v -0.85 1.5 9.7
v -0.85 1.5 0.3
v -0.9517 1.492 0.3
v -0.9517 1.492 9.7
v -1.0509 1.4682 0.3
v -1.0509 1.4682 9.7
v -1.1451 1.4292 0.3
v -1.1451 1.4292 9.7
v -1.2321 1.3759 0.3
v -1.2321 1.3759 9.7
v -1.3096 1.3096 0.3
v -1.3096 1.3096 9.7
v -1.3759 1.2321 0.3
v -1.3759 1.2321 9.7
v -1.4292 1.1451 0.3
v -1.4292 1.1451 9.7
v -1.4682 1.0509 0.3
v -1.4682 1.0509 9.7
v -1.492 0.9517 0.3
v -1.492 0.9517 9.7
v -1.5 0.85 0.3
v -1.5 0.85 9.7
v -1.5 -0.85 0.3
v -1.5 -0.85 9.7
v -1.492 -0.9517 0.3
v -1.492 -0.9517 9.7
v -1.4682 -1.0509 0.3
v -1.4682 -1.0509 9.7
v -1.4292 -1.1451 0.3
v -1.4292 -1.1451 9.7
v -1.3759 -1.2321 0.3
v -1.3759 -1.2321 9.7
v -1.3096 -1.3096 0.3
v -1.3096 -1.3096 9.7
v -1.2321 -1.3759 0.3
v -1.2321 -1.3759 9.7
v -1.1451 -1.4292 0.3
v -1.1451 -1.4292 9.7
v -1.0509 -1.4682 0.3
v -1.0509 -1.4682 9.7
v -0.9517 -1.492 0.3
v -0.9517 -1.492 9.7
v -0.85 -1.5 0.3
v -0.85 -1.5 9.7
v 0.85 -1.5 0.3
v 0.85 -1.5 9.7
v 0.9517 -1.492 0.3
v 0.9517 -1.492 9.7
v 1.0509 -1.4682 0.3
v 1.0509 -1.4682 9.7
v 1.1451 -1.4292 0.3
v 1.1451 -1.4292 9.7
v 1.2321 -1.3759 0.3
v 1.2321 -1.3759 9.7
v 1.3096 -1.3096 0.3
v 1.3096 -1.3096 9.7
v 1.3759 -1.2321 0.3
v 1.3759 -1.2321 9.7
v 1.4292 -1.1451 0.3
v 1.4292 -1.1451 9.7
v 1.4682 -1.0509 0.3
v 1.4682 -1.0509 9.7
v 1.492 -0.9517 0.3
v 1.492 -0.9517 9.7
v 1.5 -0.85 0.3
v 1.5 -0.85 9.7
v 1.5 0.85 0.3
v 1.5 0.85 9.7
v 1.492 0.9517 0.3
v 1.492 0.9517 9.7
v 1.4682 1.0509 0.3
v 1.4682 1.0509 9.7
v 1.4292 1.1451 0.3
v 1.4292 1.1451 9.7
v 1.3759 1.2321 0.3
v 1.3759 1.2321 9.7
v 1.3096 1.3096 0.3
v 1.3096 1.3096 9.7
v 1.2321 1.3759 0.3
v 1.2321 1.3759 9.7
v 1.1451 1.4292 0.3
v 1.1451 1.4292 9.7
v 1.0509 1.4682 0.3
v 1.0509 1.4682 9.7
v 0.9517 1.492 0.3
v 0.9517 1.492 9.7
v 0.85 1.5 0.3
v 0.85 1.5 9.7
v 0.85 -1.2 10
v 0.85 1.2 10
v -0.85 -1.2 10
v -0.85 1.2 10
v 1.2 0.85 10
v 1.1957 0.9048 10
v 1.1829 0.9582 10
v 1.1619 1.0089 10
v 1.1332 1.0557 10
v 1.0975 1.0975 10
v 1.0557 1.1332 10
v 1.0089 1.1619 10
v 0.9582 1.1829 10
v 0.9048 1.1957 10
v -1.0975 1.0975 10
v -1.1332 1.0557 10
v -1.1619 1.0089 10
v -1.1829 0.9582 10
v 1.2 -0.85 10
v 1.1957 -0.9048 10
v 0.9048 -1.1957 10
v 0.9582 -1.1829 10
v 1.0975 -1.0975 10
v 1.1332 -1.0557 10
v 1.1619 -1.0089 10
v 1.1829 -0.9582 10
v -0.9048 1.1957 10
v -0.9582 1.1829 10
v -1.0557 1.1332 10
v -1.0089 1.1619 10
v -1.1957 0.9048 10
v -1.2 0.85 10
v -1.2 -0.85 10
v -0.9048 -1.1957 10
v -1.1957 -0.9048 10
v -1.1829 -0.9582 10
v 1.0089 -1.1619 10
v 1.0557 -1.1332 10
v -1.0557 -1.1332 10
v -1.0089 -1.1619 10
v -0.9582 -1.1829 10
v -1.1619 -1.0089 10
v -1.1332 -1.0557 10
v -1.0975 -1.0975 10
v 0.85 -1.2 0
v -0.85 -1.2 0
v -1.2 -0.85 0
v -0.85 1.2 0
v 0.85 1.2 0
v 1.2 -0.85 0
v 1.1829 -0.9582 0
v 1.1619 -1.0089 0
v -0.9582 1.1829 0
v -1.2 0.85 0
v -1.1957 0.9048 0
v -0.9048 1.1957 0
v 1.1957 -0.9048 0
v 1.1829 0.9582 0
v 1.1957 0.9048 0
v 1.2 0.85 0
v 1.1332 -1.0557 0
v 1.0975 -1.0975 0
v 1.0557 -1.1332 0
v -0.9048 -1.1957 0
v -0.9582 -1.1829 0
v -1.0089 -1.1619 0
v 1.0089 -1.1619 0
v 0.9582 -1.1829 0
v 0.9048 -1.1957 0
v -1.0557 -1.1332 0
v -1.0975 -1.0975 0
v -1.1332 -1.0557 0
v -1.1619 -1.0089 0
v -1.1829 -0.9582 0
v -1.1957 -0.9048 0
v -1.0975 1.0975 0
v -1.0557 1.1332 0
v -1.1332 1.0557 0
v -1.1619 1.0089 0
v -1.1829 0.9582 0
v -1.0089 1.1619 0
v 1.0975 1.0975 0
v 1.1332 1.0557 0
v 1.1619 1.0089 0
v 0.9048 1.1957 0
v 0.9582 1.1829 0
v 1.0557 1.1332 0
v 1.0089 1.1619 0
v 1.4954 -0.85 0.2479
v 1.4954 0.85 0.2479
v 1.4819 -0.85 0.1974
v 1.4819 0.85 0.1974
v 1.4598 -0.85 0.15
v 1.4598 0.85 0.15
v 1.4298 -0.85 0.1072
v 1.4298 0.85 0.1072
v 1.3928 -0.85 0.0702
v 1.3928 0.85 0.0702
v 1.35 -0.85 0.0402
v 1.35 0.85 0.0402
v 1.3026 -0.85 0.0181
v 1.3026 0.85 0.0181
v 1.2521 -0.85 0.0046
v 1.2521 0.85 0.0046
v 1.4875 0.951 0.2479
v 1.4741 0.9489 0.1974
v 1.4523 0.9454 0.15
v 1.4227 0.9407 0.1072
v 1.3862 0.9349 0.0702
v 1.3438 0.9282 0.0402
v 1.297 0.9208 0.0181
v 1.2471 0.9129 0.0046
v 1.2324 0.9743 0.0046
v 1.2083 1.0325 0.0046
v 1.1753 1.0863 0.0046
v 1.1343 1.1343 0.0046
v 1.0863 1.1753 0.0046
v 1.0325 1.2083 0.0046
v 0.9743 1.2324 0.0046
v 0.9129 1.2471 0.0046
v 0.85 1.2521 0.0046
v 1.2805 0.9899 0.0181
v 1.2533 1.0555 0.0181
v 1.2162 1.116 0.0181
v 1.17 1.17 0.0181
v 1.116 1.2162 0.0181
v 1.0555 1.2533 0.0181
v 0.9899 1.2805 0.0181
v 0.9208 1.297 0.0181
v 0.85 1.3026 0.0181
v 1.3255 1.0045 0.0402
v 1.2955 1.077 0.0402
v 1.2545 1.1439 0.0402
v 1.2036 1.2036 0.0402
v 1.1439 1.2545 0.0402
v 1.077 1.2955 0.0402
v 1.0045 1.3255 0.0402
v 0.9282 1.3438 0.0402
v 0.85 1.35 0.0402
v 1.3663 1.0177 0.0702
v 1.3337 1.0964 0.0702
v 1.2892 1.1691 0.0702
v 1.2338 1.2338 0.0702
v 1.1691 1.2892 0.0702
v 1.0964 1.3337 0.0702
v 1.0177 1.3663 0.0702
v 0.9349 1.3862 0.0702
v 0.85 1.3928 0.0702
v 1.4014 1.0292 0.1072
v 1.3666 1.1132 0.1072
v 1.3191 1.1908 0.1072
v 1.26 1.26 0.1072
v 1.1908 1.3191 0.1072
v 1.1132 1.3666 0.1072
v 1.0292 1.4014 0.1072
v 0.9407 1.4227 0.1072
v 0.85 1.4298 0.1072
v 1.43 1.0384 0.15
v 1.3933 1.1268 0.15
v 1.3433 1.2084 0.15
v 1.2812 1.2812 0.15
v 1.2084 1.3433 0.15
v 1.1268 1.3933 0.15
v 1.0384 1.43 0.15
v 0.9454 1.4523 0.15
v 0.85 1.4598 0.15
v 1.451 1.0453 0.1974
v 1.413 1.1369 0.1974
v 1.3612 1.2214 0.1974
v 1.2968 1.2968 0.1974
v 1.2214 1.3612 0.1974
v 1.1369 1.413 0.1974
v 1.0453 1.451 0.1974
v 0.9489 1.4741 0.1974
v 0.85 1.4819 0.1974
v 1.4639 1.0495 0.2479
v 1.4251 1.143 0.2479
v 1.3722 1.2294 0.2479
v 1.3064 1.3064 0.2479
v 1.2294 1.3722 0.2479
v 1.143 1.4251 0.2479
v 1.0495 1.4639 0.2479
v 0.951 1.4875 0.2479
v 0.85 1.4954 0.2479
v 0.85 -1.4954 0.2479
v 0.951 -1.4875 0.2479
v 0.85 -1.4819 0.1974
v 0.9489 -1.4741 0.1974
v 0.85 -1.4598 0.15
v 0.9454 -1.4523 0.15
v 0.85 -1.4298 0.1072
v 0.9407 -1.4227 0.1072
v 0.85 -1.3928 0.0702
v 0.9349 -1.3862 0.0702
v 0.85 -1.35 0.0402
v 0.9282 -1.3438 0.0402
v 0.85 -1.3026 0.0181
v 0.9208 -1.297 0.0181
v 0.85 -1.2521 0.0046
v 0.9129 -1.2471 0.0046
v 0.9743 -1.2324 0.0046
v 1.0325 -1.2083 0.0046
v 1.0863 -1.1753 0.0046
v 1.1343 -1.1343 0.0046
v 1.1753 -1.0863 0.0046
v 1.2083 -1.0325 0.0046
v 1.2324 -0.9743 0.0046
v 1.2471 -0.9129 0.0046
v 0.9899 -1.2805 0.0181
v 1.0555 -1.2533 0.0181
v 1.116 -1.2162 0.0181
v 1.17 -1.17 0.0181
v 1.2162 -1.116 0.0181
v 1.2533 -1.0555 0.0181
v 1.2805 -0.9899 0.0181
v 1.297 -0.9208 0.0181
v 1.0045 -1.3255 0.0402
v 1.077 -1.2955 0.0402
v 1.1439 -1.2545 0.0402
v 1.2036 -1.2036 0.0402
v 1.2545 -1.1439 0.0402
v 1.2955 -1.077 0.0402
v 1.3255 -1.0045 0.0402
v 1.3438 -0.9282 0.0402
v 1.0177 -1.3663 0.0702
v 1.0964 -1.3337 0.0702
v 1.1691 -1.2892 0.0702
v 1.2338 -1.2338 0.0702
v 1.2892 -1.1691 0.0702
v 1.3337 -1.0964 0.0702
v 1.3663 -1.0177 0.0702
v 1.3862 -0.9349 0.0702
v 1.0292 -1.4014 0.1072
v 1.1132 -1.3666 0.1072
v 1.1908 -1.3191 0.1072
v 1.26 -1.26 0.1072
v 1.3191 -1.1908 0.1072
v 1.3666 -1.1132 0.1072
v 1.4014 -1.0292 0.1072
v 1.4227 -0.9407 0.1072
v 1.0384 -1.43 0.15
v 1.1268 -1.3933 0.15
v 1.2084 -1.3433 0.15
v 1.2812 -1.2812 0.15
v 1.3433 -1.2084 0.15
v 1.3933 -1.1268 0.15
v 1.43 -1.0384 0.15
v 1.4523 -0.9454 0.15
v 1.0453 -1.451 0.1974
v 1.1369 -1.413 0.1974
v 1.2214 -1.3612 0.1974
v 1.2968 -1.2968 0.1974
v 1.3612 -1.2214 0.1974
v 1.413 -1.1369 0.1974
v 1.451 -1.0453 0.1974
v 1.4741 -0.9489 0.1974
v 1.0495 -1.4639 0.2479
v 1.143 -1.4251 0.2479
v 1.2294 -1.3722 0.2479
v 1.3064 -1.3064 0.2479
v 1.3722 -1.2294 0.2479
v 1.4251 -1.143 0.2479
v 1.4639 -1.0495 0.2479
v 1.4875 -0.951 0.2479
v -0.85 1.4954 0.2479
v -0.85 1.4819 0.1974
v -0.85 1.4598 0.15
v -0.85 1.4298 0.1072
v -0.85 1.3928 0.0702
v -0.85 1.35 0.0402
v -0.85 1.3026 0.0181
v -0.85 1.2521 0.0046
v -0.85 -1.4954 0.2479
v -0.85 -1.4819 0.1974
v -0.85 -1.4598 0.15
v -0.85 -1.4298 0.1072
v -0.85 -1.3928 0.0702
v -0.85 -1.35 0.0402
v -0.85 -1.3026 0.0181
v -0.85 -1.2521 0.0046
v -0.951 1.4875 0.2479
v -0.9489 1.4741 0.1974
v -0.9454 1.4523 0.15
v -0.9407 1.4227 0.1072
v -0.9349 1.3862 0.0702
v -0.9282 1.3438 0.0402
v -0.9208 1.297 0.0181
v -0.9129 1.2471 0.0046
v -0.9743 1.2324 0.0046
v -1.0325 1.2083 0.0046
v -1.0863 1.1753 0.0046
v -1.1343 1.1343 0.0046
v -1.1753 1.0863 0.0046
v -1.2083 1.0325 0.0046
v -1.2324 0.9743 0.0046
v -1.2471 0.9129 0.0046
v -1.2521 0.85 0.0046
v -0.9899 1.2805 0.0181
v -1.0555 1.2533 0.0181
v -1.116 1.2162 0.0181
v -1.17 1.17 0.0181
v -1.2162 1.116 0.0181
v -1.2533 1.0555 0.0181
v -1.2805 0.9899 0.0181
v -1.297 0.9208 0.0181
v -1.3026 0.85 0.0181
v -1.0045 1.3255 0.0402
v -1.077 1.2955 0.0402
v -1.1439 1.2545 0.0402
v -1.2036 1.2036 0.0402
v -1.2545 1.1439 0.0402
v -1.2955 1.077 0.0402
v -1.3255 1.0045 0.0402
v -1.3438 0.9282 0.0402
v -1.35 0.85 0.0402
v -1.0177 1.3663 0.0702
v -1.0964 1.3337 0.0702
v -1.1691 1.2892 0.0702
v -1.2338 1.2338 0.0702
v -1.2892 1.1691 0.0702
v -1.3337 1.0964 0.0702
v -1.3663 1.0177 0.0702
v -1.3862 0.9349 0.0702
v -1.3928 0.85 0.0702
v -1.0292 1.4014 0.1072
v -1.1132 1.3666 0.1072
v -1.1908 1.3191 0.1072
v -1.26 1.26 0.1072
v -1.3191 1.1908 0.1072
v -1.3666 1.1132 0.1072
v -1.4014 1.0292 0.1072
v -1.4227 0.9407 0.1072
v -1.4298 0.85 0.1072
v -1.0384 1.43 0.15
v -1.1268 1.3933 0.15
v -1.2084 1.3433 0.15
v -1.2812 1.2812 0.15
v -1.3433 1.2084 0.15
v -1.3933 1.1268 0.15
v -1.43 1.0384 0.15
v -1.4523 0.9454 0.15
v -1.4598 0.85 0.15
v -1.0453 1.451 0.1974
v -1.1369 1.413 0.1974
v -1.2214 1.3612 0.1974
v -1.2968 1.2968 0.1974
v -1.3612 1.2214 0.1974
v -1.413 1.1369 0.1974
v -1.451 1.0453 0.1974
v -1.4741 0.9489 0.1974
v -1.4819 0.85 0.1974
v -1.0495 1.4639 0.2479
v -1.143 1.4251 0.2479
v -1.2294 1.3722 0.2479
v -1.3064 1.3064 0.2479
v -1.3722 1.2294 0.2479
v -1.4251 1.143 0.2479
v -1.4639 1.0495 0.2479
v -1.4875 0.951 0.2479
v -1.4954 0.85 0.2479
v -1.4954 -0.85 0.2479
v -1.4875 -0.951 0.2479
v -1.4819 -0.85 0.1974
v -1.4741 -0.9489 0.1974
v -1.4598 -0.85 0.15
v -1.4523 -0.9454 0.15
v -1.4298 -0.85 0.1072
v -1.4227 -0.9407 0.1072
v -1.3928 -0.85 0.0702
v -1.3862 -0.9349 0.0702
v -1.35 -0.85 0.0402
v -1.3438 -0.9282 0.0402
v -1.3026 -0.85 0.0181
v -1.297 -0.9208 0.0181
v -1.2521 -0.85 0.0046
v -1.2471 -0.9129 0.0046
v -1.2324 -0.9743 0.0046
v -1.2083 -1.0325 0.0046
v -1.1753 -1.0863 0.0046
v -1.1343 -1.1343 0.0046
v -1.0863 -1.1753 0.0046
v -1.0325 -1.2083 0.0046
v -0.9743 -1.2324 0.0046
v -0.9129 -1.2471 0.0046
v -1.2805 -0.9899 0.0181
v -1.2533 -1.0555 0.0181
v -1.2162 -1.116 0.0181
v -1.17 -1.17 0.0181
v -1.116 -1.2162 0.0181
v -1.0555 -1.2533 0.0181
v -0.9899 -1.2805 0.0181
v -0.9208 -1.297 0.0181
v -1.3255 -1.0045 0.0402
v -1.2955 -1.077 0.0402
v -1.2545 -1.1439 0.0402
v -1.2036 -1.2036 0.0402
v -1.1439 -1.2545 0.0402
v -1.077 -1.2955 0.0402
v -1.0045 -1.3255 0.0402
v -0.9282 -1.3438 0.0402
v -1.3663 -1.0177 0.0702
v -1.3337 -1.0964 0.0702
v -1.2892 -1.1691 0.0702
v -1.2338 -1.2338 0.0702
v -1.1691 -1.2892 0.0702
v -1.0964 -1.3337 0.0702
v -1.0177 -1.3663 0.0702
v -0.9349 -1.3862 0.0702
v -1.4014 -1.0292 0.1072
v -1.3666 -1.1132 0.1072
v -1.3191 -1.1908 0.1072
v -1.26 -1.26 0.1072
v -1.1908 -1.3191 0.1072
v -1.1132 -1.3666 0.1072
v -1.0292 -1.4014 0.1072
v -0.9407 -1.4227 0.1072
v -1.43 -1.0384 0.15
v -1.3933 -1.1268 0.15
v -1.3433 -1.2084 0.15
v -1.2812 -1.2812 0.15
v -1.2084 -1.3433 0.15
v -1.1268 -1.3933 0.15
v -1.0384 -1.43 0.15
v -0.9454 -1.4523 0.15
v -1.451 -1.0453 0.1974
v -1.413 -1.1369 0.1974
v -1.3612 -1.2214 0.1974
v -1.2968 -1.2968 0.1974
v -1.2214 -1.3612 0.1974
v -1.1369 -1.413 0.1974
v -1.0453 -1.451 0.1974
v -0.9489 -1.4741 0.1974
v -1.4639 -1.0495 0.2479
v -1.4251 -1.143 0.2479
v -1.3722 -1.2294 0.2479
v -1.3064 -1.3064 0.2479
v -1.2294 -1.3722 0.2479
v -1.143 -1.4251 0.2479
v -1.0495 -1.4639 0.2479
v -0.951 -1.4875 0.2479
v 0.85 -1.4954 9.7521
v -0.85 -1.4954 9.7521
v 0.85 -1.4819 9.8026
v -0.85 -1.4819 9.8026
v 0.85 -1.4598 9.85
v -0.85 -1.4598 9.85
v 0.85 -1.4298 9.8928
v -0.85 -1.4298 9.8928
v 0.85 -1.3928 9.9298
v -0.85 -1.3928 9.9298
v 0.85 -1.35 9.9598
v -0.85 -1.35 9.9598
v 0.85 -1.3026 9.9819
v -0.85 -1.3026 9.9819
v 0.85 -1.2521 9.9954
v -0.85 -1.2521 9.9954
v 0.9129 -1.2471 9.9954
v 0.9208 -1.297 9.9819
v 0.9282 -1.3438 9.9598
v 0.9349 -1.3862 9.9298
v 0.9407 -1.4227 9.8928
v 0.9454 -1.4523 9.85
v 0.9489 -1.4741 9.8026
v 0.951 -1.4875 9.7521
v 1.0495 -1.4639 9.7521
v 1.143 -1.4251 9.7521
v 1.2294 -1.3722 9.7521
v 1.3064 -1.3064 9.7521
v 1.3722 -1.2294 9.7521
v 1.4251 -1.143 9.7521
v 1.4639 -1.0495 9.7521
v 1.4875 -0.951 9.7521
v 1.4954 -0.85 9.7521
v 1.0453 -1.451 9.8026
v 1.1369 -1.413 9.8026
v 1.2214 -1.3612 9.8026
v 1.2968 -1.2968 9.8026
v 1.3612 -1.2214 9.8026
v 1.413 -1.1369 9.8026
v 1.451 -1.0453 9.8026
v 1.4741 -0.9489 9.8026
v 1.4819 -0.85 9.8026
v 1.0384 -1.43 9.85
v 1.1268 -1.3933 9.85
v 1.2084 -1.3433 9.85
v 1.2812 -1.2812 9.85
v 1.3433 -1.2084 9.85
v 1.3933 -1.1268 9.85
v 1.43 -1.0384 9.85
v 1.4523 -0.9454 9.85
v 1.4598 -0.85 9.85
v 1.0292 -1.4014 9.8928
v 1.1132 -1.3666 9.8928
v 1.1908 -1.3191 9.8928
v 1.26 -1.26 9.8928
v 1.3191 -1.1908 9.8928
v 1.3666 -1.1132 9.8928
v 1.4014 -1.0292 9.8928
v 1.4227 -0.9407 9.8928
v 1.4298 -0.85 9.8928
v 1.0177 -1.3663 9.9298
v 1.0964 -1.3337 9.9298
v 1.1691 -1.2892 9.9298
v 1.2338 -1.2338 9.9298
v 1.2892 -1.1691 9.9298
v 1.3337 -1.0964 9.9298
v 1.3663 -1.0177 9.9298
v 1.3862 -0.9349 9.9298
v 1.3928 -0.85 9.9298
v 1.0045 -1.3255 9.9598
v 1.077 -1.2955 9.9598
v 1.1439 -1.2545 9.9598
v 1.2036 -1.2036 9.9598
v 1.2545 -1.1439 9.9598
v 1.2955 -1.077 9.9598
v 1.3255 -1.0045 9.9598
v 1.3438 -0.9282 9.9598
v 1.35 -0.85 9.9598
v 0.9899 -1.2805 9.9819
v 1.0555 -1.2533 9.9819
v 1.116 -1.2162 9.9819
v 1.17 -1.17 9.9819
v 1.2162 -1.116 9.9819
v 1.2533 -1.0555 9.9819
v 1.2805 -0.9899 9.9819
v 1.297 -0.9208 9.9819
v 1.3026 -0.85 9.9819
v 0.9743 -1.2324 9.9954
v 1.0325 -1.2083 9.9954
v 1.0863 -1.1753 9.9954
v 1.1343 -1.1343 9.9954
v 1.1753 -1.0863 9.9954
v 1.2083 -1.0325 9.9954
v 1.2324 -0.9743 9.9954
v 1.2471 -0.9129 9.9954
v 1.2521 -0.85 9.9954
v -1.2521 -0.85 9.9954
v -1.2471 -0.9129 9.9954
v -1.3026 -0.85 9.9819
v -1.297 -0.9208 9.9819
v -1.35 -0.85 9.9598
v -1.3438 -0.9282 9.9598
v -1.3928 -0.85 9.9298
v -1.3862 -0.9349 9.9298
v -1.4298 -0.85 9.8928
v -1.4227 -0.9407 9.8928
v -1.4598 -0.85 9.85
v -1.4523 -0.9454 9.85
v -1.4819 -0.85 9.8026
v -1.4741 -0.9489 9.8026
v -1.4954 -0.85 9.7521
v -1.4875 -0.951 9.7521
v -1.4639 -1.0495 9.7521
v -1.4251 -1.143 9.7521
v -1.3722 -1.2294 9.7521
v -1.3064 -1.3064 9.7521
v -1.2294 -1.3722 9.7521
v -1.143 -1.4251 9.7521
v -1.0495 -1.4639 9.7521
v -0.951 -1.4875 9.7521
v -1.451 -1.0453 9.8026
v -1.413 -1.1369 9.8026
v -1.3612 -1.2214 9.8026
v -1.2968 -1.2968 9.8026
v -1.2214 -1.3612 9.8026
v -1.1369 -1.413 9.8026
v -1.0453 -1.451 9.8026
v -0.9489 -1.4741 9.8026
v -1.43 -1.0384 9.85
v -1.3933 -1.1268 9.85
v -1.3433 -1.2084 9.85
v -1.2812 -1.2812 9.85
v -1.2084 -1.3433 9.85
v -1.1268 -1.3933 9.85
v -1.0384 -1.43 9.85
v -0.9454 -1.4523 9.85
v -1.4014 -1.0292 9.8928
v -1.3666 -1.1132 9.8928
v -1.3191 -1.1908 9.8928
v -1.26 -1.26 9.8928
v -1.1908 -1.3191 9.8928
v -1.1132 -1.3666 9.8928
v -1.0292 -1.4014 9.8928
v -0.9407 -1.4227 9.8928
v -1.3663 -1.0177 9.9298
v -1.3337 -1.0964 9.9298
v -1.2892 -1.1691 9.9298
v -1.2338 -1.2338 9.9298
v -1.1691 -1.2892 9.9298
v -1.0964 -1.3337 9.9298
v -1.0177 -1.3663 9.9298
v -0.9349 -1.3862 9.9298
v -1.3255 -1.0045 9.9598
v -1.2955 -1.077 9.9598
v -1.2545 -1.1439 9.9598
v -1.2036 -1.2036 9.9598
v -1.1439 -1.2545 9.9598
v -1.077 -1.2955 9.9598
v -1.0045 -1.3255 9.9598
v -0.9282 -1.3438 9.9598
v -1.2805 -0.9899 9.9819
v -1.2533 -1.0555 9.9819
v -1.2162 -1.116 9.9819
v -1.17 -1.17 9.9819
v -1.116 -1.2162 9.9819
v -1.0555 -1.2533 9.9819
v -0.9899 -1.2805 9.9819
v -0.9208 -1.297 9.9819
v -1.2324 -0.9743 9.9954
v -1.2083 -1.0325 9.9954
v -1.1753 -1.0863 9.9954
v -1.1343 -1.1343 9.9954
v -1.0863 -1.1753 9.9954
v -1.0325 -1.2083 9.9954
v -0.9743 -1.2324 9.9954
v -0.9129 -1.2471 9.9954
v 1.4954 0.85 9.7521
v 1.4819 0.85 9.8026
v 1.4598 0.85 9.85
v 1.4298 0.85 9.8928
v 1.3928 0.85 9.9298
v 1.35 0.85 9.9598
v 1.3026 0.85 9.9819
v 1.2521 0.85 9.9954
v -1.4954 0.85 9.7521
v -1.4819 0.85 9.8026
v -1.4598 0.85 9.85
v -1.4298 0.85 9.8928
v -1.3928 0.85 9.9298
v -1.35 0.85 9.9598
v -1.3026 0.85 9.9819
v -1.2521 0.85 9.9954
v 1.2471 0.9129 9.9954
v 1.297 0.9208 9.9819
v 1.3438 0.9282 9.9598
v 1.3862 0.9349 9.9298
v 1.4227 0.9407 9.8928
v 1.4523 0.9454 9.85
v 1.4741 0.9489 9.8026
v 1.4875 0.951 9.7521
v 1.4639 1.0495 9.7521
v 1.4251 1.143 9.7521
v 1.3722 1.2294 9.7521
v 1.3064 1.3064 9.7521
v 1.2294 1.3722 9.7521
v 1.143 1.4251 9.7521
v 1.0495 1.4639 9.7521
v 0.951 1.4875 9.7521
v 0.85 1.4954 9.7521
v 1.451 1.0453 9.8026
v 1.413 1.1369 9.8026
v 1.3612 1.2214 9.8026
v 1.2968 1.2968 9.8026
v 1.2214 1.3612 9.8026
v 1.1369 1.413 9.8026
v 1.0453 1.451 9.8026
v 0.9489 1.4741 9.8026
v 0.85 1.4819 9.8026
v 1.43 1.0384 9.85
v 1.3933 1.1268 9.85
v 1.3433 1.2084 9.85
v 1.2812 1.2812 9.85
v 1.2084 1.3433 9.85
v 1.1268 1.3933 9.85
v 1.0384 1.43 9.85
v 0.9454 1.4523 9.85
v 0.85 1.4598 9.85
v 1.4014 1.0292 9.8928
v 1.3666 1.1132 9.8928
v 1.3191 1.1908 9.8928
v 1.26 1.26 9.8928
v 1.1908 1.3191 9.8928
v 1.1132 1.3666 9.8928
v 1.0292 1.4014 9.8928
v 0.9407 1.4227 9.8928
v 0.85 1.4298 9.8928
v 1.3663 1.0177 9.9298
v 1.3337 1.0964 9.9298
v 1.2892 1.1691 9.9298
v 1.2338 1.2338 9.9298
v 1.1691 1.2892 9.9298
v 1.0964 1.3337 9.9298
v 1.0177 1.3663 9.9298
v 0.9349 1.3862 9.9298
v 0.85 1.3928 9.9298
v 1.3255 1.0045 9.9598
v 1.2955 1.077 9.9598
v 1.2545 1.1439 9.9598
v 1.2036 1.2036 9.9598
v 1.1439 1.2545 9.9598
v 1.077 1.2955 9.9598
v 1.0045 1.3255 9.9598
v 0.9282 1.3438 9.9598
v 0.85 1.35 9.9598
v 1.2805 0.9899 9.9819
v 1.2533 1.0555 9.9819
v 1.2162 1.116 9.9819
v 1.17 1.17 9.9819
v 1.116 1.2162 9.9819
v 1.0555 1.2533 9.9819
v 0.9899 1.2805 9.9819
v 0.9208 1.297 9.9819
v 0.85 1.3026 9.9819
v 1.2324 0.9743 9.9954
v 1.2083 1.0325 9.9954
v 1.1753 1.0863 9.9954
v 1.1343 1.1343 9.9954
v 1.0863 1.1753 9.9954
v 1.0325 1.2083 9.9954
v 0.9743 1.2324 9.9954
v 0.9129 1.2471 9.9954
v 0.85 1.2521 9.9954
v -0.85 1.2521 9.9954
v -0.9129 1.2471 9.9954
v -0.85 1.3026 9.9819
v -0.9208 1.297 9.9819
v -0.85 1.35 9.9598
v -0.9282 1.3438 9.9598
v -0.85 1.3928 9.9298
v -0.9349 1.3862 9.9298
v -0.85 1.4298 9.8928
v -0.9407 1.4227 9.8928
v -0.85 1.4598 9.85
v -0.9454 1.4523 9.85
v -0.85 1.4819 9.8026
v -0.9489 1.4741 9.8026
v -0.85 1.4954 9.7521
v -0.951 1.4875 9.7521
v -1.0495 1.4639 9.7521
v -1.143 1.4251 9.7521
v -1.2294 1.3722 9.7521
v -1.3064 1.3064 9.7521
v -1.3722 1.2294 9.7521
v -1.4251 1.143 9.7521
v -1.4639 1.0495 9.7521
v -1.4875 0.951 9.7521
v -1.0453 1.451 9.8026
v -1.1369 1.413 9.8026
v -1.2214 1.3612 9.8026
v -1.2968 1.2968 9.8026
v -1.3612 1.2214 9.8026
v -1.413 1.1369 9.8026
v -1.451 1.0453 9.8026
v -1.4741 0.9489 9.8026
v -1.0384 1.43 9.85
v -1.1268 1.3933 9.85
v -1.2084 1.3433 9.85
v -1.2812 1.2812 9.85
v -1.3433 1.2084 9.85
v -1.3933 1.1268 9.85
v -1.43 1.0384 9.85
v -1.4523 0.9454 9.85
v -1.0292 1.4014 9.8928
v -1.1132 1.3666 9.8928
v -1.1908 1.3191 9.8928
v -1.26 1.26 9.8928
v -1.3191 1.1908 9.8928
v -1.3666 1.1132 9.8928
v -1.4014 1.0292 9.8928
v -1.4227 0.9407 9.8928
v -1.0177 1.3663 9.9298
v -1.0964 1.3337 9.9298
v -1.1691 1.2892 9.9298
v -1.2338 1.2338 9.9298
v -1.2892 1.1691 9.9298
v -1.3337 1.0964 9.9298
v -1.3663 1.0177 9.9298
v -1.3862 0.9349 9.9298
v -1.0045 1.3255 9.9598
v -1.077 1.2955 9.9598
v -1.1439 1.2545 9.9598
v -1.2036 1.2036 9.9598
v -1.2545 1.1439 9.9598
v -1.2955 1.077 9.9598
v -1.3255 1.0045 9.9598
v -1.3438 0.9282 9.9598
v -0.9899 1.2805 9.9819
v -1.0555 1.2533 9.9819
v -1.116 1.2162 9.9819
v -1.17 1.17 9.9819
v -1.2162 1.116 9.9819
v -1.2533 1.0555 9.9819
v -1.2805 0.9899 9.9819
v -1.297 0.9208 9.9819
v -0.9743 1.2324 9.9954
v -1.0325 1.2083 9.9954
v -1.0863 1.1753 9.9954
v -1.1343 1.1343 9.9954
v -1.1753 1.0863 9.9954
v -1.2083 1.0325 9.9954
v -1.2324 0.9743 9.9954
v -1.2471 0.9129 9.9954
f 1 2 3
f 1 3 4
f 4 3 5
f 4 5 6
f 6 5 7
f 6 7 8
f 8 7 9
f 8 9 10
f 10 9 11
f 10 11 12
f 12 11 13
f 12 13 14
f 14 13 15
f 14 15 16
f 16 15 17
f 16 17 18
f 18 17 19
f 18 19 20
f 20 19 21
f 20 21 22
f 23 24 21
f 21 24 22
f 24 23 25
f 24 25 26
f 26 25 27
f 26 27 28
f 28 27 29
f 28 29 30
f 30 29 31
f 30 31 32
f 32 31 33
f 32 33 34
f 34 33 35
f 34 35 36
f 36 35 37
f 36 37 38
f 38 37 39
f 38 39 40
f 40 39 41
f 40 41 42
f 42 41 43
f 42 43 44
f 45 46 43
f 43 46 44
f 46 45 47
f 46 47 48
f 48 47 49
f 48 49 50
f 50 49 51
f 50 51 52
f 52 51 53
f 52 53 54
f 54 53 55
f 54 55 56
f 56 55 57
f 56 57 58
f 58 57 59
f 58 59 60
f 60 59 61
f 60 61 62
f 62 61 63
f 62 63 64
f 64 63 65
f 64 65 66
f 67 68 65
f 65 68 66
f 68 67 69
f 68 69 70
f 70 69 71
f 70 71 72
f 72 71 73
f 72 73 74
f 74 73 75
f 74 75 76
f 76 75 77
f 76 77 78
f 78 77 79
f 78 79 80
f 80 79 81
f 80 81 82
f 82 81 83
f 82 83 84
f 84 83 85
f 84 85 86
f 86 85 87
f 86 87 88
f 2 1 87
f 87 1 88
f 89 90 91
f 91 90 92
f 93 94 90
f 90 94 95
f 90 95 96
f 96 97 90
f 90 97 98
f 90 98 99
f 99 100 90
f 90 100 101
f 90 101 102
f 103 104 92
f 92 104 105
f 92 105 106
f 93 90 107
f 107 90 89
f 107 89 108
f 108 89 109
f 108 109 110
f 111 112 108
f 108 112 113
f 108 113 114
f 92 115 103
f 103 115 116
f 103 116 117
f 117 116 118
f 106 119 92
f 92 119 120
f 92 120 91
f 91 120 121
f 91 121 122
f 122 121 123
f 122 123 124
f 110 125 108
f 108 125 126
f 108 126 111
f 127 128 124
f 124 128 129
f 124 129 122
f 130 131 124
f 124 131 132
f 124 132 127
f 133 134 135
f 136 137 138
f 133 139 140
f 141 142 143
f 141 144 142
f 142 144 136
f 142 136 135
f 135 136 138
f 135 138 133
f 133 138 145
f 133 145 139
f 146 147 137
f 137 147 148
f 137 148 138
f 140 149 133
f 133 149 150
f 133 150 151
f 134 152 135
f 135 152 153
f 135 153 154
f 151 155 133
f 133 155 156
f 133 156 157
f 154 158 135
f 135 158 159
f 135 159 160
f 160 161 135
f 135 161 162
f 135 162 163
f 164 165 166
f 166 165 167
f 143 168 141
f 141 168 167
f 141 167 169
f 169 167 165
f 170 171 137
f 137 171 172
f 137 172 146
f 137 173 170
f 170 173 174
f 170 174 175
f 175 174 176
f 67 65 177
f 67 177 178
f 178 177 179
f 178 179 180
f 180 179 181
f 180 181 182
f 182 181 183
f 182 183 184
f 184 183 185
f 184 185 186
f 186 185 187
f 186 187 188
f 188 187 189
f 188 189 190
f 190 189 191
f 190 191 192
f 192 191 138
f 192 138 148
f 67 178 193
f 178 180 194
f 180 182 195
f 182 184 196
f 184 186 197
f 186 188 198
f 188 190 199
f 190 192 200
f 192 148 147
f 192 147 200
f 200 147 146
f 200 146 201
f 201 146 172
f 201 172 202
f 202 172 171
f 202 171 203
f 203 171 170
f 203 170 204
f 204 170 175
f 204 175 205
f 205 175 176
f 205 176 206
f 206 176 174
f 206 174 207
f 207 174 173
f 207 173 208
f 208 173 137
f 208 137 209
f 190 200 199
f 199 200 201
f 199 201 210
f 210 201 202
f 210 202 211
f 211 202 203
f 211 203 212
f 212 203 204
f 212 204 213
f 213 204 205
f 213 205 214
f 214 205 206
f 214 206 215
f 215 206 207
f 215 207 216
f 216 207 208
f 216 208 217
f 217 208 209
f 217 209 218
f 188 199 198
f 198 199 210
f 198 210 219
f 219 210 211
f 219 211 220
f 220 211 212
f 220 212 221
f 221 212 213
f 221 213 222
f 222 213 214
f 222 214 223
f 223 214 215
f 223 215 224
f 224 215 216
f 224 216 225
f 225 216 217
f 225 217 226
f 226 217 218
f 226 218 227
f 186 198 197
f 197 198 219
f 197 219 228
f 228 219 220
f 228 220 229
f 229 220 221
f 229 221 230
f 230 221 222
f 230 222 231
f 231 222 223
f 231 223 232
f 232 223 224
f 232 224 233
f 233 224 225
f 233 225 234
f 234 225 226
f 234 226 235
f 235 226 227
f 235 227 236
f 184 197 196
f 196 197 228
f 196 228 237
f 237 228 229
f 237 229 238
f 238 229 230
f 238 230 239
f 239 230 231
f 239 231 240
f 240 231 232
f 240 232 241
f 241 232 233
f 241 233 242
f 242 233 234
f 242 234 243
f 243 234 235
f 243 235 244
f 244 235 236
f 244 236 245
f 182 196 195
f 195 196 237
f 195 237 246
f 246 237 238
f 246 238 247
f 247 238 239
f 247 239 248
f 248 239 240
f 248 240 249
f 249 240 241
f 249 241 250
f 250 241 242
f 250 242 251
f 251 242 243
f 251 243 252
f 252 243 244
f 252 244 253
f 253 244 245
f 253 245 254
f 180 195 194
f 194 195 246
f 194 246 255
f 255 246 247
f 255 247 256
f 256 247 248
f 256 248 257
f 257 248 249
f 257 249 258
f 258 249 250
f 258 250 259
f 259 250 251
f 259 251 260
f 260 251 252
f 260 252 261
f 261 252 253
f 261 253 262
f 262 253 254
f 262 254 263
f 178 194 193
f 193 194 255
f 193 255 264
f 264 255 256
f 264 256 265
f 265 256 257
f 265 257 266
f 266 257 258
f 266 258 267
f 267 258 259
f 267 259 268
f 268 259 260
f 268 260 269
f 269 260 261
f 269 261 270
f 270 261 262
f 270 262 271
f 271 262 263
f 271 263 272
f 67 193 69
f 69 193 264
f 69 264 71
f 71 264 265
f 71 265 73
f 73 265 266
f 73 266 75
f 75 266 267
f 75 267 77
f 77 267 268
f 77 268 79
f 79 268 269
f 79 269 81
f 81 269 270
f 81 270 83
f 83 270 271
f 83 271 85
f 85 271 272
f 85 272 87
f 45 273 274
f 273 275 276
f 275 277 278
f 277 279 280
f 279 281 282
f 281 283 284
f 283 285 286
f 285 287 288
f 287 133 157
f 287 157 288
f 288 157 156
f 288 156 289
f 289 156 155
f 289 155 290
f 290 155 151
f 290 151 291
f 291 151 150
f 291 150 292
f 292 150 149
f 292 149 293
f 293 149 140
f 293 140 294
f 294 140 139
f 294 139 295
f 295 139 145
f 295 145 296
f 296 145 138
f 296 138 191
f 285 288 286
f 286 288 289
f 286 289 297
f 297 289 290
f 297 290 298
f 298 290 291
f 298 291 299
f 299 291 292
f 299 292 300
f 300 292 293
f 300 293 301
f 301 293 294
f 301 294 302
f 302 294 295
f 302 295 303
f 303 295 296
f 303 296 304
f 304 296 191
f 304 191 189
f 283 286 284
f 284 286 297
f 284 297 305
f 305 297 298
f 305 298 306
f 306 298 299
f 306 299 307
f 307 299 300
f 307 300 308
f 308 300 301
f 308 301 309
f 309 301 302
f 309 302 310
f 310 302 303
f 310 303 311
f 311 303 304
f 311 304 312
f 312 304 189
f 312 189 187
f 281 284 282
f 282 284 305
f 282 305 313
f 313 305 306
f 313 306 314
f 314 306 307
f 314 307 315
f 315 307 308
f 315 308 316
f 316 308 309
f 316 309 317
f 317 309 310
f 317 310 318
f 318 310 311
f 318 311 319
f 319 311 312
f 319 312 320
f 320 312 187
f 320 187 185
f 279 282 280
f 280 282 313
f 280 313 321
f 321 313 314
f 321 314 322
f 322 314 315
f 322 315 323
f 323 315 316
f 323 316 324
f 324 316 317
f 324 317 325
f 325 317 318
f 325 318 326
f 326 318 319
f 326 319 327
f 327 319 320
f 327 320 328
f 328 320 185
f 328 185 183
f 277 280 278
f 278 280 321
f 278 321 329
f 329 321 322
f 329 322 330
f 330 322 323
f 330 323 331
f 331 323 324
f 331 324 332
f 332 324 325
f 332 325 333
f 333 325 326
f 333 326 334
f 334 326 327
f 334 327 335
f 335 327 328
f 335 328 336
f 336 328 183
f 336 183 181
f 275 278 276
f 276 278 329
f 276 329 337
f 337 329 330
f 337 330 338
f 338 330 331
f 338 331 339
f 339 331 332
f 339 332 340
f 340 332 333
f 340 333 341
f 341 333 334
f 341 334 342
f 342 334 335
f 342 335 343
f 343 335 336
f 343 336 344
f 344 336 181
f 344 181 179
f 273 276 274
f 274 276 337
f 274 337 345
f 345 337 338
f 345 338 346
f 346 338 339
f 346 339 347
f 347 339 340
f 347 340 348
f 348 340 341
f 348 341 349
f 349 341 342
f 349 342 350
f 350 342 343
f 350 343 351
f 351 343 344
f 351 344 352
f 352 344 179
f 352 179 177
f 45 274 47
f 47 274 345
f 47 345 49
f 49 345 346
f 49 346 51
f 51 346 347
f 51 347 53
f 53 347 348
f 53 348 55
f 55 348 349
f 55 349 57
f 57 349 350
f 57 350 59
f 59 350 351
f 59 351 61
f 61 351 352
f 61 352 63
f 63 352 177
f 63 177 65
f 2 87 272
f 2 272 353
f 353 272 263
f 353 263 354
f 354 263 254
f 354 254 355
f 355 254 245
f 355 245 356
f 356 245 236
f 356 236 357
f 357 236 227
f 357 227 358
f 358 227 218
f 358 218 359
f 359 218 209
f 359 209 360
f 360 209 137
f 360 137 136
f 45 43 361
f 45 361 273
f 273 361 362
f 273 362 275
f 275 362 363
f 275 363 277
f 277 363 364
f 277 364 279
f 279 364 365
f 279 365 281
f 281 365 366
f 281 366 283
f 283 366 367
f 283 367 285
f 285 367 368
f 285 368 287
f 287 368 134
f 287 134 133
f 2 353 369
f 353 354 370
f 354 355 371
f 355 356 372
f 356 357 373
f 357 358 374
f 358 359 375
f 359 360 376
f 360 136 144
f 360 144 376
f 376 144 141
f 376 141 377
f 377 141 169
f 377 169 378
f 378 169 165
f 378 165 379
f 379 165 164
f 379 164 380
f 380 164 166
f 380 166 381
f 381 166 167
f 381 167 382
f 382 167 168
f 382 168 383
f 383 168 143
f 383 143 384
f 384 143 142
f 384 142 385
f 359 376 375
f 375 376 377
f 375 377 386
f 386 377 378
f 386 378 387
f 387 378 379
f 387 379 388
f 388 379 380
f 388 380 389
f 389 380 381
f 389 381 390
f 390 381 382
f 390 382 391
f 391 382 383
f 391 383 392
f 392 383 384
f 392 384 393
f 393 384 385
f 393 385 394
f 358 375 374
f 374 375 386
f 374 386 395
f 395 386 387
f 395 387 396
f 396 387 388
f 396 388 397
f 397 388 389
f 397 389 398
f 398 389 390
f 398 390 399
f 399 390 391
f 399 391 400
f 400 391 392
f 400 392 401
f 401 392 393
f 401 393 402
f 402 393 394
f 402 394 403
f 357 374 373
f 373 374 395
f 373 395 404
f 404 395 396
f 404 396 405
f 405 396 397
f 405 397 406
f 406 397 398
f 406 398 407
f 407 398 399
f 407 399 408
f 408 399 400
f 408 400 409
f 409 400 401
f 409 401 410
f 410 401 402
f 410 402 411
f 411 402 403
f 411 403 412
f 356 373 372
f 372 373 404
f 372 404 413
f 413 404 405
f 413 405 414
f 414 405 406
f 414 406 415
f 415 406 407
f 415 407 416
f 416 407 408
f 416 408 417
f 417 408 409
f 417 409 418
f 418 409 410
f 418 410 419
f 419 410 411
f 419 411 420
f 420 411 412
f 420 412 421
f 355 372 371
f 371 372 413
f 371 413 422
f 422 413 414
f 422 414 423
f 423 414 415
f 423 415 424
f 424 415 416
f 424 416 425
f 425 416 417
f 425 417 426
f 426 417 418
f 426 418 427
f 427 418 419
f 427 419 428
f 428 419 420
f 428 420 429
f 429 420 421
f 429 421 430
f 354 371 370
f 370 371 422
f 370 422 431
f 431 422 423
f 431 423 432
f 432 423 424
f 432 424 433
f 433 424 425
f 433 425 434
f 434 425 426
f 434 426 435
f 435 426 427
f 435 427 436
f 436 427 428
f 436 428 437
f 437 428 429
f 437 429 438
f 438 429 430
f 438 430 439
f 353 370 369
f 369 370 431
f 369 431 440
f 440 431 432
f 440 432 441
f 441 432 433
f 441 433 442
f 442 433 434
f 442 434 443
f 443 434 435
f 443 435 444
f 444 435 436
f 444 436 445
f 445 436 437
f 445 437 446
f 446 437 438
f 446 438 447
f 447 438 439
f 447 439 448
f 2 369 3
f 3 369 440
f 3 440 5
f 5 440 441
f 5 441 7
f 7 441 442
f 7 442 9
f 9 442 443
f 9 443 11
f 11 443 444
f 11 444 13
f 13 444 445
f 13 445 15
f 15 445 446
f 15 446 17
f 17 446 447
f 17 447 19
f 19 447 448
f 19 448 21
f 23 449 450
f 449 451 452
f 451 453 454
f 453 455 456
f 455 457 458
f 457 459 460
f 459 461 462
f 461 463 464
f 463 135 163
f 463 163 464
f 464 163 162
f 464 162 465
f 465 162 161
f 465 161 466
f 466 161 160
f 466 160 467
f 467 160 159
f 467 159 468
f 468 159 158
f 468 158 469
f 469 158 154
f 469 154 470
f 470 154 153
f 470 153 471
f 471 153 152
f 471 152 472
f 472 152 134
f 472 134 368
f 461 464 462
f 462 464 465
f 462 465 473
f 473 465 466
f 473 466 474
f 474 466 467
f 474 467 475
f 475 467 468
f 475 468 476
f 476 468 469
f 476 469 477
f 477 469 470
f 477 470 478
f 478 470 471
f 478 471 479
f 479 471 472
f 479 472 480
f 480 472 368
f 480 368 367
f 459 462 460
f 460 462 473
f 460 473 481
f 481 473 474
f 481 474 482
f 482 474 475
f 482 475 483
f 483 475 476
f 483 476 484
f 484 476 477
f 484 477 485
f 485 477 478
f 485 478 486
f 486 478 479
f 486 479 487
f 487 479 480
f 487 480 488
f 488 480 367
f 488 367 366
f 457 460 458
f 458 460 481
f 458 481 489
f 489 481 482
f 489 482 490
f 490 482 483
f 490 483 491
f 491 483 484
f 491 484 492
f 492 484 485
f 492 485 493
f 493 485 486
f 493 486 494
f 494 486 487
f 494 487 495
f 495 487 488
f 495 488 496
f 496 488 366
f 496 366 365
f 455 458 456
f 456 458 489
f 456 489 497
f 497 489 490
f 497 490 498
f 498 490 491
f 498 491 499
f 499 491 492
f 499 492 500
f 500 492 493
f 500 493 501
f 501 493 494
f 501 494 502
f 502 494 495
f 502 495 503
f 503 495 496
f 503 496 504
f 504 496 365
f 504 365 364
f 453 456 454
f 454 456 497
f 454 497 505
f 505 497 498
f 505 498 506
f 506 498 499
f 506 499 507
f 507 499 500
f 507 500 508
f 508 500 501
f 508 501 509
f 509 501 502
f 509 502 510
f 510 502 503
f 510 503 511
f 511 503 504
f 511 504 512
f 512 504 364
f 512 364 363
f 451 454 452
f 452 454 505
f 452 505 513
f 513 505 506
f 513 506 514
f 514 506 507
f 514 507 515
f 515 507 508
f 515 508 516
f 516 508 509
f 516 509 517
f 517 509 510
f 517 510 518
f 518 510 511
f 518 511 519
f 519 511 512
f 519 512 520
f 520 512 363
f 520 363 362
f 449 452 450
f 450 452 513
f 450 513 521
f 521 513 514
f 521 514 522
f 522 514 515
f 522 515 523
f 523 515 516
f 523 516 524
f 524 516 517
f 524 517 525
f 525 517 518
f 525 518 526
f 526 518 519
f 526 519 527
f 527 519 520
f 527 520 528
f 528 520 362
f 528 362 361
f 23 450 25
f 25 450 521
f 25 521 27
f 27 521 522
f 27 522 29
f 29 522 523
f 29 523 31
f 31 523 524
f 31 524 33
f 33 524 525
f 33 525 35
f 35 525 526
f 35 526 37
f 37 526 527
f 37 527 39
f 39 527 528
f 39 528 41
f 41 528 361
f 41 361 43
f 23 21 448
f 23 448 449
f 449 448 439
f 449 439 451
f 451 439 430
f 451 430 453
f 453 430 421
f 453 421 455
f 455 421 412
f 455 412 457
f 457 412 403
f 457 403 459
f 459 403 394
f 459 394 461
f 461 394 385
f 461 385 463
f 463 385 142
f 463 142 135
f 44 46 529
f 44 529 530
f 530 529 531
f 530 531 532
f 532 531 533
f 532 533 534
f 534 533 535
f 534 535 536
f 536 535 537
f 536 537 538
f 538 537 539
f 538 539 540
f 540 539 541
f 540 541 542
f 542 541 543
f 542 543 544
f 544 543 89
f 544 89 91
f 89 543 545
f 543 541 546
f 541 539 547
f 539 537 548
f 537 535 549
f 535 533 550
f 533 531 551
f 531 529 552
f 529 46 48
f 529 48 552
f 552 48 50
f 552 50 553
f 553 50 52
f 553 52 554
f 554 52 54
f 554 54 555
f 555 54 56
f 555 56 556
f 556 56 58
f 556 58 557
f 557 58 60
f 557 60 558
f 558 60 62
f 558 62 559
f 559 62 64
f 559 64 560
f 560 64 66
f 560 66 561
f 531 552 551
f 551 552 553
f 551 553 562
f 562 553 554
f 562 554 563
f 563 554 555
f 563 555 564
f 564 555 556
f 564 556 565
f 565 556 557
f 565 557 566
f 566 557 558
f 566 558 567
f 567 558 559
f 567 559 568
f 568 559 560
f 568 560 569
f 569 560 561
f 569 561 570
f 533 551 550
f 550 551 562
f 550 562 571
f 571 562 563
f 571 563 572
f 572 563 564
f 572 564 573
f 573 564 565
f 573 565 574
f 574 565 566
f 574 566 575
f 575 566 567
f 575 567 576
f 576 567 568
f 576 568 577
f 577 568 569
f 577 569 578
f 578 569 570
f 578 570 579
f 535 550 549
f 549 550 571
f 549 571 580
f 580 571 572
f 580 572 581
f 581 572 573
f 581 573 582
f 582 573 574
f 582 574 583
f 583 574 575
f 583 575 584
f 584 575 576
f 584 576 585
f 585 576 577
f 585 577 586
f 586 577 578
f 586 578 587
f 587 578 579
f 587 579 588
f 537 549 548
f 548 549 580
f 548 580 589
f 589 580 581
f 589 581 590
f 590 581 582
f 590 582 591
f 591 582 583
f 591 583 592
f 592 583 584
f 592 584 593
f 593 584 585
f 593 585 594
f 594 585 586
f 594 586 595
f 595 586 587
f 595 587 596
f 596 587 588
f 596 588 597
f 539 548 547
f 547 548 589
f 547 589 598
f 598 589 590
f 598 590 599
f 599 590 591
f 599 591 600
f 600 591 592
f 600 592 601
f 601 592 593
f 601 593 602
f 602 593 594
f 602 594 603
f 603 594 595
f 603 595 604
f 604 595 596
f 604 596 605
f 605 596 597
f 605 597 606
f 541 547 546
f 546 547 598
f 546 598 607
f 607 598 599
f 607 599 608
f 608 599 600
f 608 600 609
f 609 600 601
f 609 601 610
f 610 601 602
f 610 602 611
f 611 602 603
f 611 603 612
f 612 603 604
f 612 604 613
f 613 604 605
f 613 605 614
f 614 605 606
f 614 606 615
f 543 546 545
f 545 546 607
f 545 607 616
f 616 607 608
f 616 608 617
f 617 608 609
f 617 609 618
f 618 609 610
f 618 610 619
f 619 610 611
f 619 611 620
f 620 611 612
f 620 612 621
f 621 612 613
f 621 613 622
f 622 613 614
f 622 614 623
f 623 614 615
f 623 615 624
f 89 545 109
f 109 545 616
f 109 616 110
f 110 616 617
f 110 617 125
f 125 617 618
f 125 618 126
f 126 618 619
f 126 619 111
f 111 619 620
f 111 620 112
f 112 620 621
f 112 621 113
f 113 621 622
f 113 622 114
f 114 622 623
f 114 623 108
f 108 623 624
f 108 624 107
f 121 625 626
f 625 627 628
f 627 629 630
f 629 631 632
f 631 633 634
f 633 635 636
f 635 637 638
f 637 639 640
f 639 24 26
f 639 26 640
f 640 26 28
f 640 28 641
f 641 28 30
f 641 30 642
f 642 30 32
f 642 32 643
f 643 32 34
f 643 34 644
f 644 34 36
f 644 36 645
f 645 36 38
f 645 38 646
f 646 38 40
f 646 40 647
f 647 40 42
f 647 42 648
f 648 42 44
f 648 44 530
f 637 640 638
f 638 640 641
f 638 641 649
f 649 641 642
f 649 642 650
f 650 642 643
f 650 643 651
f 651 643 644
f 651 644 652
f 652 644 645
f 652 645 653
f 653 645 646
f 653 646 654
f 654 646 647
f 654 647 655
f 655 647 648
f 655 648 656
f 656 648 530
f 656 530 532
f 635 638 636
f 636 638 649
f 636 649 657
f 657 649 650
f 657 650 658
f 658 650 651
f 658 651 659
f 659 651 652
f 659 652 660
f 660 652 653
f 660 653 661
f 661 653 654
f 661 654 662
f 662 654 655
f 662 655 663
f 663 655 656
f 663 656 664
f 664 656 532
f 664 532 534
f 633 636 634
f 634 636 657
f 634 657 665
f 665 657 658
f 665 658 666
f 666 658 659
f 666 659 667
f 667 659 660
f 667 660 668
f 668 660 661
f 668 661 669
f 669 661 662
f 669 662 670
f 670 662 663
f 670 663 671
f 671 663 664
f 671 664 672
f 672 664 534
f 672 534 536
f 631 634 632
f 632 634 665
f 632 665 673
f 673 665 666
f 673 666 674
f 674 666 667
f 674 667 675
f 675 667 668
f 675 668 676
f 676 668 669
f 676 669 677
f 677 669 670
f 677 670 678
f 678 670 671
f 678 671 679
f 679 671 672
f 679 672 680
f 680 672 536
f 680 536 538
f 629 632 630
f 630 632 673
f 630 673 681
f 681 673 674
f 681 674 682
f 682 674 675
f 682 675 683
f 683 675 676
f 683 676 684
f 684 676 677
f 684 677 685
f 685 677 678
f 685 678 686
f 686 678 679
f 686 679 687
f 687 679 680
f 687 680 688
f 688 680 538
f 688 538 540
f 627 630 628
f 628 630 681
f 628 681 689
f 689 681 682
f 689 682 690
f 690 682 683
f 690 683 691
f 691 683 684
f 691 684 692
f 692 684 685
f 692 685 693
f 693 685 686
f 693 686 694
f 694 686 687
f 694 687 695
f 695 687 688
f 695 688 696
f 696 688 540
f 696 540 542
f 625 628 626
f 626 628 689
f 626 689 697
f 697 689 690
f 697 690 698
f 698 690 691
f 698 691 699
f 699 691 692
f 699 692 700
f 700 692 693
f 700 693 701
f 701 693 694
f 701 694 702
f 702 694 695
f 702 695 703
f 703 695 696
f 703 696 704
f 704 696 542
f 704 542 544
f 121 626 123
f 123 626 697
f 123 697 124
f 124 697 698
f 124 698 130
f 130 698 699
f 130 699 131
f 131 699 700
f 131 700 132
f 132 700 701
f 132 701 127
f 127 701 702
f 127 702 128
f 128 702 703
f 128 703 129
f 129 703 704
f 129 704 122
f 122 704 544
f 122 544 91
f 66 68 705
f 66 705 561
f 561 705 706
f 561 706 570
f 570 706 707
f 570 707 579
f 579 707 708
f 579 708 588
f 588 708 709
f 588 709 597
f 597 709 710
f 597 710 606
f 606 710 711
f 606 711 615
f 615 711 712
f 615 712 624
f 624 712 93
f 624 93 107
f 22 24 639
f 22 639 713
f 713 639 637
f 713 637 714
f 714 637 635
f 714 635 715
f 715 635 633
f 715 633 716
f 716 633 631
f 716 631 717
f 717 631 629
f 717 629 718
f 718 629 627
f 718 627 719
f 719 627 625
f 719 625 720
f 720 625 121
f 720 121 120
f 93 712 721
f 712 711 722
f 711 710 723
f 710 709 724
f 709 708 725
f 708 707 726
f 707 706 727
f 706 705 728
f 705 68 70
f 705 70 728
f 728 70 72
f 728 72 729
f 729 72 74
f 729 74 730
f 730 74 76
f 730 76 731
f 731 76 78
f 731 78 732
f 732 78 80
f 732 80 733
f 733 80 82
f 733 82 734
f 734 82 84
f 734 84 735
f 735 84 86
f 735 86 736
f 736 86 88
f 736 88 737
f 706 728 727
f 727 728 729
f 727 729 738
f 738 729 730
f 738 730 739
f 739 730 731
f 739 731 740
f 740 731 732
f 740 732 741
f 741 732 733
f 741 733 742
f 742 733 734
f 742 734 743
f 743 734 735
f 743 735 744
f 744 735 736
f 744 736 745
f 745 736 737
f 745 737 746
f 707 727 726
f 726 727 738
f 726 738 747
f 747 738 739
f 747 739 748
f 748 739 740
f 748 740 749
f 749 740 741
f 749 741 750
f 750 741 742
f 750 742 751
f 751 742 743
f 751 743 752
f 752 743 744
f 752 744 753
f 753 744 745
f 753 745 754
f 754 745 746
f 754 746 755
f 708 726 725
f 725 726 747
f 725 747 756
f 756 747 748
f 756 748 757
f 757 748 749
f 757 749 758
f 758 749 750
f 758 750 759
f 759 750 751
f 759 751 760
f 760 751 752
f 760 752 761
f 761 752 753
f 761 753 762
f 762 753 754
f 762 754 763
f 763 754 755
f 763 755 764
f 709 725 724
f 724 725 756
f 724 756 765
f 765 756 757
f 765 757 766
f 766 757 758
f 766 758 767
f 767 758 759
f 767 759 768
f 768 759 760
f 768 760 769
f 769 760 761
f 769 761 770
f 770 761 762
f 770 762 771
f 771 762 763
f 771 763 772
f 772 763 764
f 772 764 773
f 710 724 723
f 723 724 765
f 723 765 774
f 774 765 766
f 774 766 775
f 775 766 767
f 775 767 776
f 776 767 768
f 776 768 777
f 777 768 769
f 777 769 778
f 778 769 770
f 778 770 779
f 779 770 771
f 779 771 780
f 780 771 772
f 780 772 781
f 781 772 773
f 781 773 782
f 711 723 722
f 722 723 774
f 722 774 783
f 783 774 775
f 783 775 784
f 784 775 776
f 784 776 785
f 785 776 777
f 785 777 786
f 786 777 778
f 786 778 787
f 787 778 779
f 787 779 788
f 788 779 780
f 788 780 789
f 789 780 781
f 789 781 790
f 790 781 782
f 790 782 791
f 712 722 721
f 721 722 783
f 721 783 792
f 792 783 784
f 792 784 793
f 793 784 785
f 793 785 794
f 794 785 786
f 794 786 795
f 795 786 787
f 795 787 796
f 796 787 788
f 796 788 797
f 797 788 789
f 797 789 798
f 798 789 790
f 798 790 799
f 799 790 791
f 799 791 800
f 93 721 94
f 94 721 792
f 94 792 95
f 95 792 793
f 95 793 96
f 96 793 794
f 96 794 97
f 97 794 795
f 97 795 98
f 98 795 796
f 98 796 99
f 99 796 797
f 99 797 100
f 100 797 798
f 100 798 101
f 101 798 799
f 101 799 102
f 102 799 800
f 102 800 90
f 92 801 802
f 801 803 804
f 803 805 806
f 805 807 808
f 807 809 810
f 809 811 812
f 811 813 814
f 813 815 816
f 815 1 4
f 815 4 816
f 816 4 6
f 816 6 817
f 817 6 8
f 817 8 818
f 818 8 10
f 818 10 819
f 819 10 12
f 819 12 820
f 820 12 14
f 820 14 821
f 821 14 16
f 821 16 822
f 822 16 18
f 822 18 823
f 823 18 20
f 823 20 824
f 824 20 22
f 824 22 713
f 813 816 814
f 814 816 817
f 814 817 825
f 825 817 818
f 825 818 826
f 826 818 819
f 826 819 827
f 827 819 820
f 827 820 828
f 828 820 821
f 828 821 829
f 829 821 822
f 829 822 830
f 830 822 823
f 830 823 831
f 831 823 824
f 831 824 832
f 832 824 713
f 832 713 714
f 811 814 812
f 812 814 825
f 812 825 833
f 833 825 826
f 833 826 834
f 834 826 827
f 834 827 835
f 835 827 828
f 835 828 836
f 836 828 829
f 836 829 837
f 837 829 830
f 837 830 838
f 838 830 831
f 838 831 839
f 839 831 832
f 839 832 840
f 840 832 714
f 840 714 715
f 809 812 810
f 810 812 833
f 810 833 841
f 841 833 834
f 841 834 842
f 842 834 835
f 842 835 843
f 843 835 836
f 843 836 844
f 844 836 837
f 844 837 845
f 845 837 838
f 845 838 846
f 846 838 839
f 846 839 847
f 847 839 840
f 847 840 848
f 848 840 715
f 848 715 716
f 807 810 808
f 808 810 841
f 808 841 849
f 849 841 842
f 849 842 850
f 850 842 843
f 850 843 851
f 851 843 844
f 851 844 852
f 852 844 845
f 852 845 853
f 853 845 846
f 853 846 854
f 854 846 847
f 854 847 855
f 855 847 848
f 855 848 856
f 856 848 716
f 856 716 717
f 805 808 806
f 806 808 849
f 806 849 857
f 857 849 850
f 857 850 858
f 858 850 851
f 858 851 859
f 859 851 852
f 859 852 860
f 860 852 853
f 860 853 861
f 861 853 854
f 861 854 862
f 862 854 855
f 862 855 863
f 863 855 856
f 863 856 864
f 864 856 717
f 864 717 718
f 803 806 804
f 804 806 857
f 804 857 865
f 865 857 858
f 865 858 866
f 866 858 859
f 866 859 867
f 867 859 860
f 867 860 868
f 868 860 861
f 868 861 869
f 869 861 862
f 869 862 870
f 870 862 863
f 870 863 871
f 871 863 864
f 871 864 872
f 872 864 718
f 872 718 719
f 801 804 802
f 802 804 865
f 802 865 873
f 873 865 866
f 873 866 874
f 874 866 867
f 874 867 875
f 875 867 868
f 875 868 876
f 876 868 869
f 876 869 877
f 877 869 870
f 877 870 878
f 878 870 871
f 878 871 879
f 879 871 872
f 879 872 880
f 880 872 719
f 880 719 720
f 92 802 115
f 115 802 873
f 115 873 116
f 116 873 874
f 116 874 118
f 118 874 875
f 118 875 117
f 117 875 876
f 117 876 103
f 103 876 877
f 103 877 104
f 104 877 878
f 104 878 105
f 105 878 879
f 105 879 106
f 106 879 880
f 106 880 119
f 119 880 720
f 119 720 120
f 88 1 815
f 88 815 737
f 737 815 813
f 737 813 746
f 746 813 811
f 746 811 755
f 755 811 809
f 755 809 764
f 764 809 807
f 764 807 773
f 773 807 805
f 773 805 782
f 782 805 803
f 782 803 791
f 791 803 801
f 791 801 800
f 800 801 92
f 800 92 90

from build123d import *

# Parameters (mm, degrees)
RESSALTO_EXTRUS_O1_DEPTH = 10
FILETE1_R                = 0.3


with BuildPart() as part:
    # Esboço1 → Ressalto-extrusão1 (new body)
    with BuildSketch(Plane.XY):
        with BuildLine():
            Line((-0.85, 1.5), (0.85, 1.5))
            ThreePointArc((0.85, 1.5), (1.309619408, 1.309619408), (1.5, 0.85))
            Line((1.5, 0.85), (1.5, -0.85))
            ThreePointArc((1.5, -0.85), (1.309619408, -1.309619408), (0.85, -1.5))
            Line((0.85, -1.5), (-0.85, -1.5))
            ThreePointArc((-0.85, -1.5), (-1.309619408, -1.309619408), (-1.5, -0.85))
            Line((-1.5, -0.85), (-1.5, 0.85))
            ThreePointArc((-1.5, 0.85), (-1.309619408, 1.309619408), (-0.85, 1.5))
        make_face()
    extrude(amount=RESSALTO_EXTRUS_O1_DEPTH)

    # Filete1
    filete1_edges = [part.edges().sort_by_distance(p)[0] for p in [
        (0, -1.5, 0),
        (-1.309619408, -1.309619408, 0),
        (-1.5, 0, 0),
        (-1.309619408, 1.309619408, 0),
        (-1.309619408, -1.309619408, 10),
        (0, -1.5, 10),
        (1.309619408, -1.309619408, 10),
        (1.5, 0, 10),
        (1.309619408, 1.309619408, 10),
        (0, 1.5, 10),
        (-1.309619408, 1.309619408, 10),
        (0, 1.5, 0),
        (-1.5, 0, 10),
        (1.309619408, 1.309619408, 0),
        (1.5, 0, 0),
        (1.309619408, -1.309619408, 0),
    ]]
    fillet(filete1_edges, radius=FILETE1_R)


solid = part.part
